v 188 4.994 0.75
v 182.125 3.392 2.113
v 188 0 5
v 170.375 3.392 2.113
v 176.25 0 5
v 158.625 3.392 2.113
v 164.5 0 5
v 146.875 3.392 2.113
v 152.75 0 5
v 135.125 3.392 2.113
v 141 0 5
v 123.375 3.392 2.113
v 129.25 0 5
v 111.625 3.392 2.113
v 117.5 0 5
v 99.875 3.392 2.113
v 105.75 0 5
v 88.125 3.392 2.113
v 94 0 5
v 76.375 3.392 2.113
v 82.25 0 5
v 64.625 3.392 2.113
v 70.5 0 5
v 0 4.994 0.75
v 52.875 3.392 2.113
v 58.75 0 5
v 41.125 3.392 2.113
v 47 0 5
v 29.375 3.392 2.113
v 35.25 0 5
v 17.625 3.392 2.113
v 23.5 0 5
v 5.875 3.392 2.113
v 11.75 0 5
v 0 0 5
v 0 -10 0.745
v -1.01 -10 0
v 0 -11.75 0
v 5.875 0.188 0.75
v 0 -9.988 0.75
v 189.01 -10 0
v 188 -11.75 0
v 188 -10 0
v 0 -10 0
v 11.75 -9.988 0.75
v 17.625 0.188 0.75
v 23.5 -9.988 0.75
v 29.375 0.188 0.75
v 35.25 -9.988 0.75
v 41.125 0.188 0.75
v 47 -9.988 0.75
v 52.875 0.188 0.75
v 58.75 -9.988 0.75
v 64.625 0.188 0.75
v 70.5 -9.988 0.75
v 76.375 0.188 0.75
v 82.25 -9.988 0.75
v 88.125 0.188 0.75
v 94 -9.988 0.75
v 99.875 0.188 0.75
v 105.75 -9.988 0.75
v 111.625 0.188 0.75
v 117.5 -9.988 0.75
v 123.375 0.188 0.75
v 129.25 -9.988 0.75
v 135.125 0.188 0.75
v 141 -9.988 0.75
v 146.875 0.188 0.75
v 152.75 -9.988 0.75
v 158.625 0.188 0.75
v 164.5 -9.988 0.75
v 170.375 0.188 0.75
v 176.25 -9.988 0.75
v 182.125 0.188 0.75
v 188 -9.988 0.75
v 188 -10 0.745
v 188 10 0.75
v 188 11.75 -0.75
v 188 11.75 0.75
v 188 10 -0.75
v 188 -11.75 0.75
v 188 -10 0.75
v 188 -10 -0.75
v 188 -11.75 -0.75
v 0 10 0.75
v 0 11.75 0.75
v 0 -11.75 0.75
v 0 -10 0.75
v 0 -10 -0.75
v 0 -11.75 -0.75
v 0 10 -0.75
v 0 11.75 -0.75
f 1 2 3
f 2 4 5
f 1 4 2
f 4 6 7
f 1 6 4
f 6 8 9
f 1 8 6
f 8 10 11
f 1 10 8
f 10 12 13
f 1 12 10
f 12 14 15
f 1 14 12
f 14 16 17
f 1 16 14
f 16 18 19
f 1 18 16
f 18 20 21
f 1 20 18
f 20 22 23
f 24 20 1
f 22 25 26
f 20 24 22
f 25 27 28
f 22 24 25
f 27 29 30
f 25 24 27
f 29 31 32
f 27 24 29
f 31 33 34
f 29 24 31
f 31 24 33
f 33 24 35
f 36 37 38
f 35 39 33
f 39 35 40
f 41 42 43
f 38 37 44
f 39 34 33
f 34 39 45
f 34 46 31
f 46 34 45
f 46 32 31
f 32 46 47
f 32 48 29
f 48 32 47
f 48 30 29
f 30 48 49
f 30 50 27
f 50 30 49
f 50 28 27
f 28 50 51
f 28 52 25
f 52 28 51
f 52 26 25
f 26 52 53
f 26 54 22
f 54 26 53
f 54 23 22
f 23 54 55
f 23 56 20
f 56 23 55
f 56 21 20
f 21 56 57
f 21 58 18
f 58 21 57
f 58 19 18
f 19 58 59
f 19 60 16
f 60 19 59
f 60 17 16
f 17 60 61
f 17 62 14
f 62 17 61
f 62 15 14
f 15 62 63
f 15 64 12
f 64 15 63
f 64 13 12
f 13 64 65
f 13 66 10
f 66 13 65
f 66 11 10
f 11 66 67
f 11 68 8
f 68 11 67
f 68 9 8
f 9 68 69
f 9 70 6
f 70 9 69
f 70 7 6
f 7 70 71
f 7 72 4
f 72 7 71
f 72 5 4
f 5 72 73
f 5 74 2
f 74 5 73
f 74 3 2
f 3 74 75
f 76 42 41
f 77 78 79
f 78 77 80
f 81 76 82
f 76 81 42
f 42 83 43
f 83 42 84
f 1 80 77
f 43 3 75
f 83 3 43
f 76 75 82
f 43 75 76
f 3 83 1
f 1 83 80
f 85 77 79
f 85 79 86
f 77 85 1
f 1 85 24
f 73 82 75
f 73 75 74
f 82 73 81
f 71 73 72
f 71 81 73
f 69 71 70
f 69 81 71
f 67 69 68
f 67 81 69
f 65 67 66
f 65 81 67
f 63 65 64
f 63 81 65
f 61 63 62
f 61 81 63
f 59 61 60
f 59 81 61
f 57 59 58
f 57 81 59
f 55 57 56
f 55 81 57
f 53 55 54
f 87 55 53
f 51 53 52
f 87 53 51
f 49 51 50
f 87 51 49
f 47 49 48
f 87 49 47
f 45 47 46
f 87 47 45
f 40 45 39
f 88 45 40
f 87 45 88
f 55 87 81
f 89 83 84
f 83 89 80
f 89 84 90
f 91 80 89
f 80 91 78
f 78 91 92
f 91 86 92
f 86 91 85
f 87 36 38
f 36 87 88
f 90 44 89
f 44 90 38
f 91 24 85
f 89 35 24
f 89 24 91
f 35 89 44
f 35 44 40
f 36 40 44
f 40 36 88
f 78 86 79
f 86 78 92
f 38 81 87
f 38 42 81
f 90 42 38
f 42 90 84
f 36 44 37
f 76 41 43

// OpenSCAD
$r = 23.5/2;
$r2 = 11 / 2;
$d = 1.5;
$fn = 3;
$links = 16;

difference() {
    union() {
for (i = [0:$links]) {
    
     translate([i * $r, 0, 2.5]) {
        rotate([0, 0, 30]) {
            cylinder(5, $r, 0, true);
        }
     }
}
translate([($links)/2 * $r, 0, 0]) {
     cube([$r * ($links ), $r*2 , $d], true);
}
}
translate([-10, 0, 0]) {
    cube([20, 20, 20], true);
}
translate([($links) * $r + 10, 0, 0]) {
    cube([20, 20, 20], true);
}
}
